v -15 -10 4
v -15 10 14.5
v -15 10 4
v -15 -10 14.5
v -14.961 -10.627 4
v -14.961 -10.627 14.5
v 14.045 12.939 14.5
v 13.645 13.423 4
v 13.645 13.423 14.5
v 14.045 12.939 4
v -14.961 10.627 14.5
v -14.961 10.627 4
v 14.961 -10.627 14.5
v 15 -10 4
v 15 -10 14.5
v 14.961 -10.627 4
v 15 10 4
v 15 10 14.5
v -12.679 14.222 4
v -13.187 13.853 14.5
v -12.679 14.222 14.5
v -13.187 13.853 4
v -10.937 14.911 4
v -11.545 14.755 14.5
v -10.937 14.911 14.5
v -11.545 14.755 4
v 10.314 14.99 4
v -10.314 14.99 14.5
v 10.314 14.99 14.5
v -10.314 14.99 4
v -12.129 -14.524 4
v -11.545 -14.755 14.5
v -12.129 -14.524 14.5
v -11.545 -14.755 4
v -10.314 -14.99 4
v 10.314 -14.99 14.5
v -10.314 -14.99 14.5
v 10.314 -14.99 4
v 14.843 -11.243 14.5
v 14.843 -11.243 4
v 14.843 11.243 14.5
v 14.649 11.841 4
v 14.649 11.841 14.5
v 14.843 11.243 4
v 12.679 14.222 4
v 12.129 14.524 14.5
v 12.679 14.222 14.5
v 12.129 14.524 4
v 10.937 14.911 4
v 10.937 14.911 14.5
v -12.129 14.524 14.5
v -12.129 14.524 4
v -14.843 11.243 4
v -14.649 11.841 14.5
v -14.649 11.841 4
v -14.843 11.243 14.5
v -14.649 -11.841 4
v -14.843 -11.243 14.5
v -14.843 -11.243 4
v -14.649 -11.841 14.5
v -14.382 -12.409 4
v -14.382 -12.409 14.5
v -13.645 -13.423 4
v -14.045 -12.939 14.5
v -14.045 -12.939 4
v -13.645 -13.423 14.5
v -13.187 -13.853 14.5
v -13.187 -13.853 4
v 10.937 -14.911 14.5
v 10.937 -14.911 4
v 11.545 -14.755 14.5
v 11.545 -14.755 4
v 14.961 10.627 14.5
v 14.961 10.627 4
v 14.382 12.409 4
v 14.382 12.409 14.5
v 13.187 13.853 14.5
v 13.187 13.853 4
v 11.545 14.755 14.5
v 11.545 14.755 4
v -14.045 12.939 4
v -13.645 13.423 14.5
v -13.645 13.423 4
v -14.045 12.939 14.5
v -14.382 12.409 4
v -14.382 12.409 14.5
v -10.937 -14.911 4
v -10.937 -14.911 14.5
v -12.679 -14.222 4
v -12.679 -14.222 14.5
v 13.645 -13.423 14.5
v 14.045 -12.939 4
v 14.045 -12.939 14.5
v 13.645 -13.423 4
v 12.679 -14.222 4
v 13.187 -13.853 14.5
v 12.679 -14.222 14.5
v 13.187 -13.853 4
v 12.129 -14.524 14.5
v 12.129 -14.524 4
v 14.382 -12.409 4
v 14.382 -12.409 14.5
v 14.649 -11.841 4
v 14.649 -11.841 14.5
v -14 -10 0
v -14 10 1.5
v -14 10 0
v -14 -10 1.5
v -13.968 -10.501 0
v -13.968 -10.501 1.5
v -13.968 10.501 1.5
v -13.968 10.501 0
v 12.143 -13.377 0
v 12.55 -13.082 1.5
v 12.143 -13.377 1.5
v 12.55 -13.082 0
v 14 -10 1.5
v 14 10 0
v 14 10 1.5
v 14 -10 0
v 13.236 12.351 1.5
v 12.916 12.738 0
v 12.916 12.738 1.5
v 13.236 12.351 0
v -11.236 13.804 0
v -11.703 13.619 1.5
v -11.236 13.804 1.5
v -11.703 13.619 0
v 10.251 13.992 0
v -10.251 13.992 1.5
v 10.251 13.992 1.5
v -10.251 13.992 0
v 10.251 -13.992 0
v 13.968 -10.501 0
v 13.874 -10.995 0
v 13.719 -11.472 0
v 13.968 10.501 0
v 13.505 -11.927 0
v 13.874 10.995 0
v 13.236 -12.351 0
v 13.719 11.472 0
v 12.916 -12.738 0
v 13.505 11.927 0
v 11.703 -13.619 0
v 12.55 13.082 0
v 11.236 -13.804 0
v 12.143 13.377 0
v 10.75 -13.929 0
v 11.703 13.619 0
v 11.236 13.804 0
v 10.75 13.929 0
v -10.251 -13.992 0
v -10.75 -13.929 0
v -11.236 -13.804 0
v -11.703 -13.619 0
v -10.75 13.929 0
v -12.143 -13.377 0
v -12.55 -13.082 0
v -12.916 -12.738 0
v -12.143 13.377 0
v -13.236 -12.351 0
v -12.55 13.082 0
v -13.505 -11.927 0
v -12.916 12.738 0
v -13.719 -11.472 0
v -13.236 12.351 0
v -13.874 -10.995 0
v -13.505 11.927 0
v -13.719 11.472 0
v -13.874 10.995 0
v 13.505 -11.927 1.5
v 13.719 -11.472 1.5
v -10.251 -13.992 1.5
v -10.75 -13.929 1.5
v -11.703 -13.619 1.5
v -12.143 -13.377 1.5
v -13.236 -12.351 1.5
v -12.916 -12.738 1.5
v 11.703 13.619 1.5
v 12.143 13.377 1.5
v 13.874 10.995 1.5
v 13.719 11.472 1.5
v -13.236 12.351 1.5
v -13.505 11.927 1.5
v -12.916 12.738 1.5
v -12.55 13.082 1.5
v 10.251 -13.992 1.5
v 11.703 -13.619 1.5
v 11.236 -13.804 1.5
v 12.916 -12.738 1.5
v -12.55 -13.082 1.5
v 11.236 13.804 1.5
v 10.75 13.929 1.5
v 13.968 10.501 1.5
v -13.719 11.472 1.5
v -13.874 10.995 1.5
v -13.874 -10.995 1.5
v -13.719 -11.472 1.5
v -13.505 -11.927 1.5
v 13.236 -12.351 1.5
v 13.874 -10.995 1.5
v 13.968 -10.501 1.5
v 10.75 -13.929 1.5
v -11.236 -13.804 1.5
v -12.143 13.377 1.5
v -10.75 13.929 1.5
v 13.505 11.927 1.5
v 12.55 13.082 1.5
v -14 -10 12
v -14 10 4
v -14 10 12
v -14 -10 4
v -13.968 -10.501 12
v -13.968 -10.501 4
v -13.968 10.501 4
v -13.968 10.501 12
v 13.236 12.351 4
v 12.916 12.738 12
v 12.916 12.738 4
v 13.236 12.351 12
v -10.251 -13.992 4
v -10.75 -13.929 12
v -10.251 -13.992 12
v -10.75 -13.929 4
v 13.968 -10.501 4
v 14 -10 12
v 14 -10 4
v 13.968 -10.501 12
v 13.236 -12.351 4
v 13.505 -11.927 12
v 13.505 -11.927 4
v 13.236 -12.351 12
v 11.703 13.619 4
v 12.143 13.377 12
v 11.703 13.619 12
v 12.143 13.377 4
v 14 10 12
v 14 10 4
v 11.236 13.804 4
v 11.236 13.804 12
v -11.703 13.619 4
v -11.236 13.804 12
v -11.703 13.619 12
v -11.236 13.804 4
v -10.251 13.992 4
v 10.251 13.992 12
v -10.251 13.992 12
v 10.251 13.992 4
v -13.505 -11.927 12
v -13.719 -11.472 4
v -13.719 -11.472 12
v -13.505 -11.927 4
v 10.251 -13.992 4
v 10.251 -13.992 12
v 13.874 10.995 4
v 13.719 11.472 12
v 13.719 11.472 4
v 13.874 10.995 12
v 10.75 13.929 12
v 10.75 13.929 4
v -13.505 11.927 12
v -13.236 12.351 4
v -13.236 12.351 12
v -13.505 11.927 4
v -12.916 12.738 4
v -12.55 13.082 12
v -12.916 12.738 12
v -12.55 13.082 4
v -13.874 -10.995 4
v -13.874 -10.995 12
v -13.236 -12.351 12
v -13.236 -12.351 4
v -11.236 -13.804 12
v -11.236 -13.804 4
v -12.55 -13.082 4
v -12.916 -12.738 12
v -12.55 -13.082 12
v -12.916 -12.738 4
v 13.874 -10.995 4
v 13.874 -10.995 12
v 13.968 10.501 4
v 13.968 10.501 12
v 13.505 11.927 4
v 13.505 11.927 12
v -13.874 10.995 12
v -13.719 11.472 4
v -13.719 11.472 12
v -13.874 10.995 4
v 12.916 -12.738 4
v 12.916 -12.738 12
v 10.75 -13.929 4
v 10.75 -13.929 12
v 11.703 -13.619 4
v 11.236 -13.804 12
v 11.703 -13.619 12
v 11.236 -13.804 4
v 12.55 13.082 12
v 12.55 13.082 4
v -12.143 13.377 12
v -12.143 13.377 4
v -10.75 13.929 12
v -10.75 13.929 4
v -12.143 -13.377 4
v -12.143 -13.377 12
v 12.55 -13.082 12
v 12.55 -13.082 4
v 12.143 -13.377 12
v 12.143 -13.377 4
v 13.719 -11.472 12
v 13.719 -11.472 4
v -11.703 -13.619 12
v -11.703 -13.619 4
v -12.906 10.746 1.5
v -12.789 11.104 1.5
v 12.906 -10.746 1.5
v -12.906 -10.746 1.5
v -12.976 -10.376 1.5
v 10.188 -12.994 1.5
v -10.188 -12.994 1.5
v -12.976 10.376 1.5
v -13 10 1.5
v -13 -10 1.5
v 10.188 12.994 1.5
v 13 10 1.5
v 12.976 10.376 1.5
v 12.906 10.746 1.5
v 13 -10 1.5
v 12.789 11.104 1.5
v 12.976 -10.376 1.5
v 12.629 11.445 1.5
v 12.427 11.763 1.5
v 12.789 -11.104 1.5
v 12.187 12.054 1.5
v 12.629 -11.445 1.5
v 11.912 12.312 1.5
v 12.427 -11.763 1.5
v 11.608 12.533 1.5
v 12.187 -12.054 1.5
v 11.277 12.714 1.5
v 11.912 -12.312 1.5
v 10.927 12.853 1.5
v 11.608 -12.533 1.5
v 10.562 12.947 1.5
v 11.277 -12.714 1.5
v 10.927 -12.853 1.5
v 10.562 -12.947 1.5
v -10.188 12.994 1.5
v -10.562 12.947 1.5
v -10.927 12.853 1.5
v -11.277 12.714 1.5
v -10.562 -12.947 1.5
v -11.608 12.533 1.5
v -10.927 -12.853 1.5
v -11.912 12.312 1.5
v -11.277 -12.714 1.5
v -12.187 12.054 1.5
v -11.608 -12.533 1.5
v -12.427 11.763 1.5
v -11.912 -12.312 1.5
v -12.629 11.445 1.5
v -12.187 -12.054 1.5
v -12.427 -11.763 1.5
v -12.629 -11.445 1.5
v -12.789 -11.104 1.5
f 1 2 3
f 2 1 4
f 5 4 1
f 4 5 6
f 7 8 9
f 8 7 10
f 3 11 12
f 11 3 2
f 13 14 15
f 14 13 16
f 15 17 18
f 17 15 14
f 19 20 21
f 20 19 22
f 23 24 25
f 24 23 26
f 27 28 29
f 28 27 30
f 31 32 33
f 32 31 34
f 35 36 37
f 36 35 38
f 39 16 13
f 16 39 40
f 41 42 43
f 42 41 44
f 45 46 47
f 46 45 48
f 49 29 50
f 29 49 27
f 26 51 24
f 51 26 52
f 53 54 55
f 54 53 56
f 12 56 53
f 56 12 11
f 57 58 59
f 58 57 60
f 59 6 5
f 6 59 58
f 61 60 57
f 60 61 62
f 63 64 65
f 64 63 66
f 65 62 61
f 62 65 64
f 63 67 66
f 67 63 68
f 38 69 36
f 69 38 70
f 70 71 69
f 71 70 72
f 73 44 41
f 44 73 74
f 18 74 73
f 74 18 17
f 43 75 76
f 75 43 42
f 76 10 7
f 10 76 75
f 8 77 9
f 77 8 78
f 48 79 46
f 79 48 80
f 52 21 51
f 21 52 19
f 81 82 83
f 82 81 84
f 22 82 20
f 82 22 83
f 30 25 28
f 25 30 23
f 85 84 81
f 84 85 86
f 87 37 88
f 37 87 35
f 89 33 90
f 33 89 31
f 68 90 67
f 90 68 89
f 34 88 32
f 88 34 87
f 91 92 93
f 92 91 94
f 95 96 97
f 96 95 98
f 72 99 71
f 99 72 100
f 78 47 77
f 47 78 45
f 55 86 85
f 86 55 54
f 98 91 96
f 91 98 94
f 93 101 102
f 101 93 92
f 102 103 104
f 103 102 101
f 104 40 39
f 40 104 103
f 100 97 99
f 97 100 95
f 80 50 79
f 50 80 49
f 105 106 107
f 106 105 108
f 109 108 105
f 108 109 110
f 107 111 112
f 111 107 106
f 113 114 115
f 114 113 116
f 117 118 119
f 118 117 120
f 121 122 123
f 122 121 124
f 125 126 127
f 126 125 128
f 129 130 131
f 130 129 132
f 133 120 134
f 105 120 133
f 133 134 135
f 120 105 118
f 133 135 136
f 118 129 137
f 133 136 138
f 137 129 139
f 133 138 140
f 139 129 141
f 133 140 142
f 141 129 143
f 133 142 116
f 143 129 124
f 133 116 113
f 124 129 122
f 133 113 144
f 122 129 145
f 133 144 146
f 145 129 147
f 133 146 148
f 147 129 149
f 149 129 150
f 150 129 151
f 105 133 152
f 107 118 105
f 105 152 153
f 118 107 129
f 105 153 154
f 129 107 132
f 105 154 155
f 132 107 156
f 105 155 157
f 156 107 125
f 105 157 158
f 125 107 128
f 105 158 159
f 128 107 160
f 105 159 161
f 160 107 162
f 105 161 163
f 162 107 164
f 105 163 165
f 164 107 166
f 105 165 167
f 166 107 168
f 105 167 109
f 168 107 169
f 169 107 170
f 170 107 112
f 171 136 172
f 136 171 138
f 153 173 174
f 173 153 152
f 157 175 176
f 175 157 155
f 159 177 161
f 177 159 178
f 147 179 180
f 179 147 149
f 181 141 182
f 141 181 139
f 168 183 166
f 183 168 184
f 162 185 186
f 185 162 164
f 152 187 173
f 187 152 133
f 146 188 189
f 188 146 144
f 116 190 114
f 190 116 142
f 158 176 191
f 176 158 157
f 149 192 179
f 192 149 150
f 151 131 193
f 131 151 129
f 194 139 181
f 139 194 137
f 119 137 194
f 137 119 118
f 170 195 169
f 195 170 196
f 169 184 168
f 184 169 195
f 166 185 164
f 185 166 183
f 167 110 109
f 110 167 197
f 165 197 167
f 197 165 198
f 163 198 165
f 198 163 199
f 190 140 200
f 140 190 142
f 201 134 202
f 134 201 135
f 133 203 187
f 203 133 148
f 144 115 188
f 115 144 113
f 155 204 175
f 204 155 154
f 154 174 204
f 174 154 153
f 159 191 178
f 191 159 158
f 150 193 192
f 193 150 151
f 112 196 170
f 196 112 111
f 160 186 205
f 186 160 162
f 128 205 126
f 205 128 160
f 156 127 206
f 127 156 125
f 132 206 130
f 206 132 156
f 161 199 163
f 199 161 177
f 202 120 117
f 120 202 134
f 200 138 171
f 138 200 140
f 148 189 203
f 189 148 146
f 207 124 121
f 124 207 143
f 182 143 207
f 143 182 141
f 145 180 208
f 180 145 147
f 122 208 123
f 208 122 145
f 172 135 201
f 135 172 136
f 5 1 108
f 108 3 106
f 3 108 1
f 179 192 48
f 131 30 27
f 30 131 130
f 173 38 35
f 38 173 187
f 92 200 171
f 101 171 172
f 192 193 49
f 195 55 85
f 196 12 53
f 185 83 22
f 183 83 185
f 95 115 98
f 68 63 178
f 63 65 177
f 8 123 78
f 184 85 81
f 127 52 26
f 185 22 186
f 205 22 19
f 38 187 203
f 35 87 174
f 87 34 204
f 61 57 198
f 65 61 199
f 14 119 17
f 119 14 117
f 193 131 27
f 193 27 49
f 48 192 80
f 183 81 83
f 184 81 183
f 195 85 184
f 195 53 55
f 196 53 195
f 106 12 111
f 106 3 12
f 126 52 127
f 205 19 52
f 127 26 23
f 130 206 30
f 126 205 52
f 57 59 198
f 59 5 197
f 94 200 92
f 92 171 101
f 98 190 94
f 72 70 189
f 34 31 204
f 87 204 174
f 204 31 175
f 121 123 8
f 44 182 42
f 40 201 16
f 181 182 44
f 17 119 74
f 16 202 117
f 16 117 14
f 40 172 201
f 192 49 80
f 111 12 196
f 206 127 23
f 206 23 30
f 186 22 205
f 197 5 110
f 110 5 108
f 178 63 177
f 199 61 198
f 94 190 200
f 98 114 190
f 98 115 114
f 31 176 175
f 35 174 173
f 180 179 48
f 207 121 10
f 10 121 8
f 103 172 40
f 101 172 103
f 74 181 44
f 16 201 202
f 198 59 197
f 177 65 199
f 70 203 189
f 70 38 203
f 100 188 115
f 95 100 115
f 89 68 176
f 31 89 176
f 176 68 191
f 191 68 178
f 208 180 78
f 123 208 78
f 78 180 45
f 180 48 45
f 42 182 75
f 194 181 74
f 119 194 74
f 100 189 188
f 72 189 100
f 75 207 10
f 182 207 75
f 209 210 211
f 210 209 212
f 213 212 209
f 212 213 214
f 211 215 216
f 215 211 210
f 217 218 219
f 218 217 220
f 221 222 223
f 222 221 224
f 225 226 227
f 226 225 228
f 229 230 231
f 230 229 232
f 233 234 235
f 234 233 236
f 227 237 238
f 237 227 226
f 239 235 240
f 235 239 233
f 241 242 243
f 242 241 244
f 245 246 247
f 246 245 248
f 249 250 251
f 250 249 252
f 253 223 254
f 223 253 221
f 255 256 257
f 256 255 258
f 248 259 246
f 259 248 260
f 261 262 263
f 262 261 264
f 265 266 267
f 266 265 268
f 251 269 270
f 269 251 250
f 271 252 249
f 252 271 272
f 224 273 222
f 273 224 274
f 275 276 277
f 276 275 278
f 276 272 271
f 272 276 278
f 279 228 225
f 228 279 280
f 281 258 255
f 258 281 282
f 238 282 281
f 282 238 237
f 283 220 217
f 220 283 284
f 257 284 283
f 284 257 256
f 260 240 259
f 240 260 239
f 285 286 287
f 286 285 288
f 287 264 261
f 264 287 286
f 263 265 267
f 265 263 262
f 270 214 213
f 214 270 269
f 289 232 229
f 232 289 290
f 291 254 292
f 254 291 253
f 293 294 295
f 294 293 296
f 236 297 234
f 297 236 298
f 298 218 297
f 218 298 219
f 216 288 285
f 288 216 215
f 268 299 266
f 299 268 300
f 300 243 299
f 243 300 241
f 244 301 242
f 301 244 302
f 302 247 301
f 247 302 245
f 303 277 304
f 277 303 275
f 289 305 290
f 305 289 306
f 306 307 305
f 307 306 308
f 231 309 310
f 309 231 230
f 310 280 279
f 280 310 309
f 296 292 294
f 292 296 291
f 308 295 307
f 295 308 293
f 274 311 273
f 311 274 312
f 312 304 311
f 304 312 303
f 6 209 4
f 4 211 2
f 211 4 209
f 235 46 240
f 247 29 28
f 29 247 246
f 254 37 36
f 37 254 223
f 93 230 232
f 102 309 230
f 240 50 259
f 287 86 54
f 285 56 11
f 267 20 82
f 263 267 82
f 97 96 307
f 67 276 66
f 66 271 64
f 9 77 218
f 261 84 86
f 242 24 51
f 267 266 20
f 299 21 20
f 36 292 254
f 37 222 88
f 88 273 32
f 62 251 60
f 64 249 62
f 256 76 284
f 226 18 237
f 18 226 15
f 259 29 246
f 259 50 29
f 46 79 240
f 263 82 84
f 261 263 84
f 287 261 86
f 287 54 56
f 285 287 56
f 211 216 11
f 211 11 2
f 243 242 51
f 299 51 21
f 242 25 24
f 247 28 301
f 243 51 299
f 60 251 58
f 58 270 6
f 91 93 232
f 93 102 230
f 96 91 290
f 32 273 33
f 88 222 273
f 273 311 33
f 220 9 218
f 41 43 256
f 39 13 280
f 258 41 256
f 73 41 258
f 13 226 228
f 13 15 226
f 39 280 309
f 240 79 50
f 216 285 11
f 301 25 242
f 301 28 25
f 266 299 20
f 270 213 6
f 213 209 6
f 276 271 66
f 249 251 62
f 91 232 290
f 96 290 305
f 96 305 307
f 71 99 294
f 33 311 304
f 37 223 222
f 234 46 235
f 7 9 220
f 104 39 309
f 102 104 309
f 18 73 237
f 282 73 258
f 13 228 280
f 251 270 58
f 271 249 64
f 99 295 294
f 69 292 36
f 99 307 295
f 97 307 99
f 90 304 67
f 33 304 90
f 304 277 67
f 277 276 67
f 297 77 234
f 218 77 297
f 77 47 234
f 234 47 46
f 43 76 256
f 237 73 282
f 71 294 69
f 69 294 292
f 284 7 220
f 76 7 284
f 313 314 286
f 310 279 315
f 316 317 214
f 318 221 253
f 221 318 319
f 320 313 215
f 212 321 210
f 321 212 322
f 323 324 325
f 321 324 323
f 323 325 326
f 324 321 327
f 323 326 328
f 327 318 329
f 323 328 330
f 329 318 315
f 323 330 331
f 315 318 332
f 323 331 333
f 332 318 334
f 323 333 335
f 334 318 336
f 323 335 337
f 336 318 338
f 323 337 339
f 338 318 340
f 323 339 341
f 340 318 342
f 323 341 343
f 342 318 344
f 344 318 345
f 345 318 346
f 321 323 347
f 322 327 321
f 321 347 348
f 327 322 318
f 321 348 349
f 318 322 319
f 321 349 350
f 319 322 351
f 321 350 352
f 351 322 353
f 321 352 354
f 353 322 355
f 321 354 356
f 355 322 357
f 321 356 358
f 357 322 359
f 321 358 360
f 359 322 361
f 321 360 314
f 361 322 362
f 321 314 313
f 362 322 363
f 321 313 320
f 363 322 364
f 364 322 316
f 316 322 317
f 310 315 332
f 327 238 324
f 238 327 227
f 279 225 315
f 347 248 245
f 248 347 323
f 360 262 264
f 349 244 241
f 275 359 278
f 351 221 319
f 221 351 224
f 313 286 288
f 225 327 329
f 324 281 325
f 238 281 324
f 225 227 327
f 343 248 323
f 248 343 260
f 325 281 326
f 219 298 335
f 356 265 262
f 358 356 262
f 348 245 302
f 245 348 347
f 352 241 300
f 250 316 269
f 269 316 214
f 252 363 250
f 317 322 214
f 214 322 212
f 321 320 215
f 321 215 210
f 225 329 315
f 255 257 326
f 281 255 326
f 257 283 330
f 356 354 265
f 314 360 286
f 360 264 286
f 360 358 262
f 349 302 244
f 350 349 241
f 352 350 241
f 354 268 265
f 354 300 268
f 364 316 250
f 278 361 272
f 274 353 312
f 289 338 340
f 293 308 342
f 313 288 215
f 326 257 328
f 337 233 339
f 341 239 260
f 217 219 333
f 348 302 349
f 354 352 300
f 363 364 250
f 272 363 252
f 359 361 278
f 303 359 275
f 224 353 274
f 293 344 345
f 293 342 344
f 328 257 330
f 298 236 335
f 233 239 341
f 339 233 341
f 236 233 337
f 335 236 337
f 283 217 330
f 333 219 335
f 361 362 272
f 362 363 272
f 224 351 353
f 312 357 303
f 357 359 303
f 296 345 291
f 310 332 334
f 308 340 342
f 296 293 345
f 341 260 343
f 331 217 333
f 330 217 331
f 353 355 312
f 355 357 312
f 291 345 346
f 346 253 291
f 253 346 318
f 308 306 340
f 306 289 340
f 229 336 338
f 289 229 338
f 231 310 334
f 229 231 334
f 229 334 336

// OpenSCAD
$fn = 50;


difference() {
	union() {
		translate(v = [0, 0, 4.0000000000]) {
			hull() {
				translate(v = [-10.0000000000, 10.0000000000, 0]) {
					cylinder(h = 10.5000000000, r = 5);
				}
				translate(v = [10.0000000000, 10.0000000000, 0]) {
					cylinder(h = 10.5000000000, r = 5);
				}
				translate(v = [-10.0000000000, -10.0000000000, 0]) {
					cylinder(h = 10.5000000000, r = 5);
				}
				translate(v = [10.0000000000, -10.0000000000, 0]) {
					cylinder(h = 10.5000000000, r = 5);
				}
			}
		}
		hull() {
			translate(v = [-10.0000000000, 10.0000000000, 0]) {
				cylinder(h = 1.5000000000, r = 4);
			}
			translate(v = [10.0000000000, 10.0000000000, 0]) {
				cylinder(h = 1.5000000000, r = 4);
			}
			translate(v = [-10.0000000000, -10.0000000000, 0]) {
				cylinder(h = 1.5000000000, r = 4);
			}
			translate(v = [10.0000000000, -10.0000000000, 0]) {
				cylinder(h = 1.5000000000, r = 4);
			}
		}
		translate(v = [0, 0, 1.5000000000]) {
			hull() {
				translate(v = [-10.0000000000, 10.0000000000, 0]) {
					cylinder(h = 2.5000000000, r1 = 4, r2 = 5.0000000000);
				}
				translate(v = [10.0000000000, 10.0000000000, 0]) {
					cylinder(h = 2.5000000000, r1 = 4, r2 = 5.0000000000);
				}
				translate(v = [-10.0000000000, -10.0000000000, 0]) {
					cylinder(h = 2.5000000000, r1 = 4, r2 = 5.0000000000);
				}
				translate(v = [10.0000000000, -10.0000000000, 0]) {
					cylinder(h = 2.5000000000, r1 = 4, r2 = 5.0000000000);
				}
			}
		}
	}
	union() {
		translate(v = [0, 0, 4.0000000000]) {
			#hull() {
				translate(v = [-10.0000000000, 10.0000000000, 0]) {
					cylinder(h = 10.5000000000, r = 4);
				}
				translate(v = [10.0000000000, 10.0000000000, 0]) {
					cylinder(h = 10.5000000000, r = 4);
				}
				translate(v = [-10.0000000000, -10.0000000000, 0]) {
					cylinder(h = 10.5000000000, r = 4);
				}
				translate(v = [10.0000000000, -10.0000000000, 0]) {
					cylinder(h = 10.5000000000, r = 4);
				}
			}
		}
		translate(v = [0, 0, 12]) {
			hull() {
				translate(v = [-10.0000000000, 10.0000000000, 0]) {
					cylinder(h = 2.5000000000, r1 = 4, r2 = 5.0000000000);
				}
				translate(v = [10.0000000000, 10.0000000000, 0]) {
					cylinder(h = 2.5000000000, r1 = 4, r2 = 5.0000000000);
				}
				translate(v = [-10.0000000000, -10.0000000000, 0]) {
					cylinder(h = 2.5000000000, r1 = 4, r2 = 5.0000000000);
				}
				translate(v = [10.0000000000, -10.0000000000, 0]) {
					cylinder(h = 2.5000000000, r1 = 4, r2 = 5.0000000000);
				}
			}
		}
		translate(v = [0, 0, 1.5000000000]) {
			#hull() {
				translate(v = [-10.0000000000, 10.0000000000, 0]) {
					cylinder(h = 2.5000000000, r1 = 3, r2 = 4.0000000000);
				}
				translate(v = [10.0000000000, 10.0000000000, 0]) {
					cylinder(h = 2.5000000000, r1 = 3, r2 = 4.0000000000);
				}
				translate(v = [-10.0000000000, -10.0000000000, 0]) {
					cylinder(h = 2.5000000000, r1 = 3, r2 = 4.0000000000);
				}
				translate(v = [10.0000000000, -10.0000000000, 0]) {
					cylinder(h = 2.5000000000, r1 = 3, r2 = 4.0000000000);
				}
			}
		}
	}
}
